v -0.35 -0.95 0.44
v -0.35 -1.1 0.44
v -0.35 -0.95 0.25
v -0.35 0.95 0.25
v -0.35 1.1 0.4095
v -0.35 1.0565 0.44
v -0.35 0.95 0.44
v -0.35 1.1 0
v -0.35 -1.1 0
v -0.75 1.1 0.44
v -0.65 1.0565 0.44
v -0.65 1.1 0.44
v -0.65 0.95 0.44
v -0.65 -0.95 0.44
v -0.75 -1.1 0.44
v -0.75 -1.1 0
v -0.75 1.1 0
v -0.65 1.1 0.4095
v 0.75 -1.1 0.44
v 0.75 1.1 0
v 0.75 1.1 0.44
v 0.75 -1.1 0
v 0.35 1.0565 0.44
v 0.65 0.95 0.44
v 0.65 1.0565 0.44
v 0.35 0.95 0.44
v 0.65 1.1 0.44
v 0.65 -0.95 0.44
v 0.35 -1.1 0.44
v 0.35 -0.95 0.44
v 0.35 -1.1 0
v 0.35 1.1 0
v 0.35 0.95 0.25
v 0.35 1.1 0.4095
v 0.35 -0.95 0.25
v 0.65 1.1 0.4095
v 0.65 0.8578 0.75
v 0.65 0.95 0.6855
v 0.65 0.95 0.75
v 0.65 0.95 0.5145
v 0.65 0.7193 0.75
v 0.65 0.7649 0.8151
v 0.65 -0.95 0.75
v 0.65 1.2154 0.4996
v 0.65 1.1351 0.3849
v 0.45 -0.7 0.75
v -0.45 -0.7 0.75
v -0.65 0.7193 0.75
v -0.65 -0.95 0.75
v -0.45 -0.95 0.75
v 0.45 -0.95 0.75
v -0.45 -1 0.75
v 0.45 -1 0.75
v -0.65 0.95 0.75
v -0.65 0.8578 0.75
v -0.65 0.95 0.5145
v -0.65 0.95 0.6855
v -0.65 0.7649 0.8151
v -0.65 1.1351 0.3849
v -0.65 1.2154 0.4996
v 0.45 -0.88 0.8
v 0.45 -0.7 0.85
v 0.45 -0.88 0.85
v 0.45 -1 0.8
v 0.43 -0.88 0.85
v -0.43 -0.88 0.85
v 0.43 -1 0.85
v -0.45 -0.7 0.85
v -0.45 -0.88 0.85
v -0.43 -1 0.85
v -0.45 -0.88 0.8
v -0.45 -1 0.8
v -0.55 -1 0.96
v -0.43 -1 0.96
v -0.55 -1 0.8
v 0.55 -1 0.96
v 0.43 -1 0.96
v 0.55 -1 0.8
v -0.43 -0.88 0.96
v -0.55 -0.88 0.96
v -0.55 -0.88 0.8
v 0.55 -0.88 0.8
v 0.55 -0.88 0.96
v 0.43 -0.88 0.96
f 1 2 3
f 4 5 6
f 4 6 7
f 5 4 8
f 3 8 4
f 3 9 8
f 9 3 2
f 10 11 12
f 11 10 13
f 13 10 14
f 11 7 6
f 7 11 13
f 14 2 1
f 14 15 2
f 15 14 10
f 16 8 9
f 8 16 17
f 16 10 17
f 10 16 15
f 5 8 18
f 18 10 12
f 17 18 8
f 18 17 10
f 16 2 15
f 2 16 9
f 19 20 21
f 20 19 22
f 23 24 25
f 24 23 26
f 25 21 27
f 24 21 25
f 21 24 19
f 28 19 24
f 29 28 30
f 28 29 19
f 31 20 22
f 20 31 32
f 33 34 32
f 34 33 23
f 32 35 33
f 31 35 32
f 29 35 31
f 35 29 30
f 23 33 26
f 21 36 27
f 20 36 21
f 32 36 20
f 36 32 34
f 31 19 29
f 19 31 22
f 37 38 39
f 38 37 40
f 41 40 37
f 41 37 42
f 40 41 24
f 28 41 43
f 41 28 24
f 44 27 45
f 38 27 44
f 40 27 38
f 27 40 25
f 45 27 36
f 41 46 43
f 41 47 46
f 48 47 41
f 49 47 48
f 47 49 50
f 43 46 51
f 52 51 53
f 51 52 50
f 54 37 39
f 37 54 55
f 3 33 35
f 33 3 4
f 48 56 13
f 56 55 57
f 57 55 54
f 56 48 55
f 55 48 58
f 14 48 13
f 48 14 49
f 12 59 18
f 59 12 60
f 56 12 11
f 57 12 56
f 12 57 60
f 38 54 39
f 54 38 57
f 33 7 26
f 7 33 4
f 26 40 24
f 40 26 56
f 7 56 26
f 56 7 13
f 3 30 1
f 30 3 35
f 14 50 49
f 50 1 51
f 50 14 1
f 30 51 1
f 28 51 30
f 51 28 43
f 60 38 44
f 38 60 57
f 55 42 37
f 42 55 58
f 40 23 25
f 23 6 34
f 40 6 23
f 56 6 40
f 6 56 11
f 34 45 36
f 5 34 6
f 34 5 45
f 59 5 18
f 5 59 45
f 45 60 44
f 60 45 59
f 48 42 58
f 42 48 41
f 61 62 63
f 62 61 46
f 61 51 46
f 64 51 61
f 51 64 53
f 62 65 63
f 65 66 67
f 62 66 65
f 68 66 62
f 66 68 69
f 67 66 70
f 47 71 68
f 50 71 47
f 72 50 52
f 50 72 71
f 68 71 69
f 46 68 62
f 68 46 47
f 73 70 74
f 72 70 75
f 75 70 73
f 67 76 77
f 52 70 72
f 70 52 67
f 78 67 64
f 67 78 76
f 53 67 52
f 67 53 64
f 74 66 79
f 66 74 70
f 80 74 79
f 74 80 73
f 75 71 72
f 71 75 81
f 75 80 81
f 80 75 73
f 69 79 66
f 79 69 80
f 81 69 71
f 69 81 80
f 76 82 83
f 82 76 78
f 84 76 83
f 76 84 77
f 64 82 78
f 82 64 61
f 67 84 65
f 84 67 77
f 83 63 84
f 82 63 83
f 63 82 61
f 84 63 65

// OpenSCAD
union() {
  union() {
    union() {
      union() {
        union() {
          union() {
            translate([-0.75, 0, 0]) {
              translate([0, -1.1, 0]) {
                translate([0, 0, 0.0]) {
                  cube([0.4, 2.2, 0.44]);
                }
              }
            }
            translate([0.35, 0, 0]) {
              translate([0, -1.1, 0]) {
                translate([0, 0, 0.0]) {
                  cube([0.4, 2.2, 0.44]);
                }
              }
            }
          }
          translate([-0.65, 0, 0]) {
            translate([0, -0.95, 0]) {
              translate([0, 0, 0.25]) {
                cube([1.3, 1.9, 0.5]);
              }
            }
          }
        }
        translate([0, 0.95, 0]) {
          translate([0, 0, 0.6]) {
            rotate([-35.0, 0, 0]) {
              translate([-0.65, 0, 0]) {
                translate([0, -0.275, 0]) {
                  translate([0, 0, -7.0e-2]) {
                    cube([1.3, 0.55, 0.14]);
                  }
                }
              }
            }
          }
        }
      }
      translate([-0.45, 0, 0]) {
        translate([0, -1.0, 0]) {
          translate([0, 0, 0.75]) {
            cube([0.9, 0.3, 0.1]);
          }
        }
      }
    }
    translate([-0.55, 0, 0]) {
      translate([0, -1.0, 0]) {
        translate([0, 0, 0.8]) {
          cube([0.12, 0.12, 0.16]);
        }
      }
    }
  }
  translate([0.43, 0, 0]) {
    translate([0, -1.0, 0]) {
      translate([0, 0, 0.8]) {
        cube([0.12, 0.12, 0.16]);
      }
    }
  }
}
$fn = 50;
